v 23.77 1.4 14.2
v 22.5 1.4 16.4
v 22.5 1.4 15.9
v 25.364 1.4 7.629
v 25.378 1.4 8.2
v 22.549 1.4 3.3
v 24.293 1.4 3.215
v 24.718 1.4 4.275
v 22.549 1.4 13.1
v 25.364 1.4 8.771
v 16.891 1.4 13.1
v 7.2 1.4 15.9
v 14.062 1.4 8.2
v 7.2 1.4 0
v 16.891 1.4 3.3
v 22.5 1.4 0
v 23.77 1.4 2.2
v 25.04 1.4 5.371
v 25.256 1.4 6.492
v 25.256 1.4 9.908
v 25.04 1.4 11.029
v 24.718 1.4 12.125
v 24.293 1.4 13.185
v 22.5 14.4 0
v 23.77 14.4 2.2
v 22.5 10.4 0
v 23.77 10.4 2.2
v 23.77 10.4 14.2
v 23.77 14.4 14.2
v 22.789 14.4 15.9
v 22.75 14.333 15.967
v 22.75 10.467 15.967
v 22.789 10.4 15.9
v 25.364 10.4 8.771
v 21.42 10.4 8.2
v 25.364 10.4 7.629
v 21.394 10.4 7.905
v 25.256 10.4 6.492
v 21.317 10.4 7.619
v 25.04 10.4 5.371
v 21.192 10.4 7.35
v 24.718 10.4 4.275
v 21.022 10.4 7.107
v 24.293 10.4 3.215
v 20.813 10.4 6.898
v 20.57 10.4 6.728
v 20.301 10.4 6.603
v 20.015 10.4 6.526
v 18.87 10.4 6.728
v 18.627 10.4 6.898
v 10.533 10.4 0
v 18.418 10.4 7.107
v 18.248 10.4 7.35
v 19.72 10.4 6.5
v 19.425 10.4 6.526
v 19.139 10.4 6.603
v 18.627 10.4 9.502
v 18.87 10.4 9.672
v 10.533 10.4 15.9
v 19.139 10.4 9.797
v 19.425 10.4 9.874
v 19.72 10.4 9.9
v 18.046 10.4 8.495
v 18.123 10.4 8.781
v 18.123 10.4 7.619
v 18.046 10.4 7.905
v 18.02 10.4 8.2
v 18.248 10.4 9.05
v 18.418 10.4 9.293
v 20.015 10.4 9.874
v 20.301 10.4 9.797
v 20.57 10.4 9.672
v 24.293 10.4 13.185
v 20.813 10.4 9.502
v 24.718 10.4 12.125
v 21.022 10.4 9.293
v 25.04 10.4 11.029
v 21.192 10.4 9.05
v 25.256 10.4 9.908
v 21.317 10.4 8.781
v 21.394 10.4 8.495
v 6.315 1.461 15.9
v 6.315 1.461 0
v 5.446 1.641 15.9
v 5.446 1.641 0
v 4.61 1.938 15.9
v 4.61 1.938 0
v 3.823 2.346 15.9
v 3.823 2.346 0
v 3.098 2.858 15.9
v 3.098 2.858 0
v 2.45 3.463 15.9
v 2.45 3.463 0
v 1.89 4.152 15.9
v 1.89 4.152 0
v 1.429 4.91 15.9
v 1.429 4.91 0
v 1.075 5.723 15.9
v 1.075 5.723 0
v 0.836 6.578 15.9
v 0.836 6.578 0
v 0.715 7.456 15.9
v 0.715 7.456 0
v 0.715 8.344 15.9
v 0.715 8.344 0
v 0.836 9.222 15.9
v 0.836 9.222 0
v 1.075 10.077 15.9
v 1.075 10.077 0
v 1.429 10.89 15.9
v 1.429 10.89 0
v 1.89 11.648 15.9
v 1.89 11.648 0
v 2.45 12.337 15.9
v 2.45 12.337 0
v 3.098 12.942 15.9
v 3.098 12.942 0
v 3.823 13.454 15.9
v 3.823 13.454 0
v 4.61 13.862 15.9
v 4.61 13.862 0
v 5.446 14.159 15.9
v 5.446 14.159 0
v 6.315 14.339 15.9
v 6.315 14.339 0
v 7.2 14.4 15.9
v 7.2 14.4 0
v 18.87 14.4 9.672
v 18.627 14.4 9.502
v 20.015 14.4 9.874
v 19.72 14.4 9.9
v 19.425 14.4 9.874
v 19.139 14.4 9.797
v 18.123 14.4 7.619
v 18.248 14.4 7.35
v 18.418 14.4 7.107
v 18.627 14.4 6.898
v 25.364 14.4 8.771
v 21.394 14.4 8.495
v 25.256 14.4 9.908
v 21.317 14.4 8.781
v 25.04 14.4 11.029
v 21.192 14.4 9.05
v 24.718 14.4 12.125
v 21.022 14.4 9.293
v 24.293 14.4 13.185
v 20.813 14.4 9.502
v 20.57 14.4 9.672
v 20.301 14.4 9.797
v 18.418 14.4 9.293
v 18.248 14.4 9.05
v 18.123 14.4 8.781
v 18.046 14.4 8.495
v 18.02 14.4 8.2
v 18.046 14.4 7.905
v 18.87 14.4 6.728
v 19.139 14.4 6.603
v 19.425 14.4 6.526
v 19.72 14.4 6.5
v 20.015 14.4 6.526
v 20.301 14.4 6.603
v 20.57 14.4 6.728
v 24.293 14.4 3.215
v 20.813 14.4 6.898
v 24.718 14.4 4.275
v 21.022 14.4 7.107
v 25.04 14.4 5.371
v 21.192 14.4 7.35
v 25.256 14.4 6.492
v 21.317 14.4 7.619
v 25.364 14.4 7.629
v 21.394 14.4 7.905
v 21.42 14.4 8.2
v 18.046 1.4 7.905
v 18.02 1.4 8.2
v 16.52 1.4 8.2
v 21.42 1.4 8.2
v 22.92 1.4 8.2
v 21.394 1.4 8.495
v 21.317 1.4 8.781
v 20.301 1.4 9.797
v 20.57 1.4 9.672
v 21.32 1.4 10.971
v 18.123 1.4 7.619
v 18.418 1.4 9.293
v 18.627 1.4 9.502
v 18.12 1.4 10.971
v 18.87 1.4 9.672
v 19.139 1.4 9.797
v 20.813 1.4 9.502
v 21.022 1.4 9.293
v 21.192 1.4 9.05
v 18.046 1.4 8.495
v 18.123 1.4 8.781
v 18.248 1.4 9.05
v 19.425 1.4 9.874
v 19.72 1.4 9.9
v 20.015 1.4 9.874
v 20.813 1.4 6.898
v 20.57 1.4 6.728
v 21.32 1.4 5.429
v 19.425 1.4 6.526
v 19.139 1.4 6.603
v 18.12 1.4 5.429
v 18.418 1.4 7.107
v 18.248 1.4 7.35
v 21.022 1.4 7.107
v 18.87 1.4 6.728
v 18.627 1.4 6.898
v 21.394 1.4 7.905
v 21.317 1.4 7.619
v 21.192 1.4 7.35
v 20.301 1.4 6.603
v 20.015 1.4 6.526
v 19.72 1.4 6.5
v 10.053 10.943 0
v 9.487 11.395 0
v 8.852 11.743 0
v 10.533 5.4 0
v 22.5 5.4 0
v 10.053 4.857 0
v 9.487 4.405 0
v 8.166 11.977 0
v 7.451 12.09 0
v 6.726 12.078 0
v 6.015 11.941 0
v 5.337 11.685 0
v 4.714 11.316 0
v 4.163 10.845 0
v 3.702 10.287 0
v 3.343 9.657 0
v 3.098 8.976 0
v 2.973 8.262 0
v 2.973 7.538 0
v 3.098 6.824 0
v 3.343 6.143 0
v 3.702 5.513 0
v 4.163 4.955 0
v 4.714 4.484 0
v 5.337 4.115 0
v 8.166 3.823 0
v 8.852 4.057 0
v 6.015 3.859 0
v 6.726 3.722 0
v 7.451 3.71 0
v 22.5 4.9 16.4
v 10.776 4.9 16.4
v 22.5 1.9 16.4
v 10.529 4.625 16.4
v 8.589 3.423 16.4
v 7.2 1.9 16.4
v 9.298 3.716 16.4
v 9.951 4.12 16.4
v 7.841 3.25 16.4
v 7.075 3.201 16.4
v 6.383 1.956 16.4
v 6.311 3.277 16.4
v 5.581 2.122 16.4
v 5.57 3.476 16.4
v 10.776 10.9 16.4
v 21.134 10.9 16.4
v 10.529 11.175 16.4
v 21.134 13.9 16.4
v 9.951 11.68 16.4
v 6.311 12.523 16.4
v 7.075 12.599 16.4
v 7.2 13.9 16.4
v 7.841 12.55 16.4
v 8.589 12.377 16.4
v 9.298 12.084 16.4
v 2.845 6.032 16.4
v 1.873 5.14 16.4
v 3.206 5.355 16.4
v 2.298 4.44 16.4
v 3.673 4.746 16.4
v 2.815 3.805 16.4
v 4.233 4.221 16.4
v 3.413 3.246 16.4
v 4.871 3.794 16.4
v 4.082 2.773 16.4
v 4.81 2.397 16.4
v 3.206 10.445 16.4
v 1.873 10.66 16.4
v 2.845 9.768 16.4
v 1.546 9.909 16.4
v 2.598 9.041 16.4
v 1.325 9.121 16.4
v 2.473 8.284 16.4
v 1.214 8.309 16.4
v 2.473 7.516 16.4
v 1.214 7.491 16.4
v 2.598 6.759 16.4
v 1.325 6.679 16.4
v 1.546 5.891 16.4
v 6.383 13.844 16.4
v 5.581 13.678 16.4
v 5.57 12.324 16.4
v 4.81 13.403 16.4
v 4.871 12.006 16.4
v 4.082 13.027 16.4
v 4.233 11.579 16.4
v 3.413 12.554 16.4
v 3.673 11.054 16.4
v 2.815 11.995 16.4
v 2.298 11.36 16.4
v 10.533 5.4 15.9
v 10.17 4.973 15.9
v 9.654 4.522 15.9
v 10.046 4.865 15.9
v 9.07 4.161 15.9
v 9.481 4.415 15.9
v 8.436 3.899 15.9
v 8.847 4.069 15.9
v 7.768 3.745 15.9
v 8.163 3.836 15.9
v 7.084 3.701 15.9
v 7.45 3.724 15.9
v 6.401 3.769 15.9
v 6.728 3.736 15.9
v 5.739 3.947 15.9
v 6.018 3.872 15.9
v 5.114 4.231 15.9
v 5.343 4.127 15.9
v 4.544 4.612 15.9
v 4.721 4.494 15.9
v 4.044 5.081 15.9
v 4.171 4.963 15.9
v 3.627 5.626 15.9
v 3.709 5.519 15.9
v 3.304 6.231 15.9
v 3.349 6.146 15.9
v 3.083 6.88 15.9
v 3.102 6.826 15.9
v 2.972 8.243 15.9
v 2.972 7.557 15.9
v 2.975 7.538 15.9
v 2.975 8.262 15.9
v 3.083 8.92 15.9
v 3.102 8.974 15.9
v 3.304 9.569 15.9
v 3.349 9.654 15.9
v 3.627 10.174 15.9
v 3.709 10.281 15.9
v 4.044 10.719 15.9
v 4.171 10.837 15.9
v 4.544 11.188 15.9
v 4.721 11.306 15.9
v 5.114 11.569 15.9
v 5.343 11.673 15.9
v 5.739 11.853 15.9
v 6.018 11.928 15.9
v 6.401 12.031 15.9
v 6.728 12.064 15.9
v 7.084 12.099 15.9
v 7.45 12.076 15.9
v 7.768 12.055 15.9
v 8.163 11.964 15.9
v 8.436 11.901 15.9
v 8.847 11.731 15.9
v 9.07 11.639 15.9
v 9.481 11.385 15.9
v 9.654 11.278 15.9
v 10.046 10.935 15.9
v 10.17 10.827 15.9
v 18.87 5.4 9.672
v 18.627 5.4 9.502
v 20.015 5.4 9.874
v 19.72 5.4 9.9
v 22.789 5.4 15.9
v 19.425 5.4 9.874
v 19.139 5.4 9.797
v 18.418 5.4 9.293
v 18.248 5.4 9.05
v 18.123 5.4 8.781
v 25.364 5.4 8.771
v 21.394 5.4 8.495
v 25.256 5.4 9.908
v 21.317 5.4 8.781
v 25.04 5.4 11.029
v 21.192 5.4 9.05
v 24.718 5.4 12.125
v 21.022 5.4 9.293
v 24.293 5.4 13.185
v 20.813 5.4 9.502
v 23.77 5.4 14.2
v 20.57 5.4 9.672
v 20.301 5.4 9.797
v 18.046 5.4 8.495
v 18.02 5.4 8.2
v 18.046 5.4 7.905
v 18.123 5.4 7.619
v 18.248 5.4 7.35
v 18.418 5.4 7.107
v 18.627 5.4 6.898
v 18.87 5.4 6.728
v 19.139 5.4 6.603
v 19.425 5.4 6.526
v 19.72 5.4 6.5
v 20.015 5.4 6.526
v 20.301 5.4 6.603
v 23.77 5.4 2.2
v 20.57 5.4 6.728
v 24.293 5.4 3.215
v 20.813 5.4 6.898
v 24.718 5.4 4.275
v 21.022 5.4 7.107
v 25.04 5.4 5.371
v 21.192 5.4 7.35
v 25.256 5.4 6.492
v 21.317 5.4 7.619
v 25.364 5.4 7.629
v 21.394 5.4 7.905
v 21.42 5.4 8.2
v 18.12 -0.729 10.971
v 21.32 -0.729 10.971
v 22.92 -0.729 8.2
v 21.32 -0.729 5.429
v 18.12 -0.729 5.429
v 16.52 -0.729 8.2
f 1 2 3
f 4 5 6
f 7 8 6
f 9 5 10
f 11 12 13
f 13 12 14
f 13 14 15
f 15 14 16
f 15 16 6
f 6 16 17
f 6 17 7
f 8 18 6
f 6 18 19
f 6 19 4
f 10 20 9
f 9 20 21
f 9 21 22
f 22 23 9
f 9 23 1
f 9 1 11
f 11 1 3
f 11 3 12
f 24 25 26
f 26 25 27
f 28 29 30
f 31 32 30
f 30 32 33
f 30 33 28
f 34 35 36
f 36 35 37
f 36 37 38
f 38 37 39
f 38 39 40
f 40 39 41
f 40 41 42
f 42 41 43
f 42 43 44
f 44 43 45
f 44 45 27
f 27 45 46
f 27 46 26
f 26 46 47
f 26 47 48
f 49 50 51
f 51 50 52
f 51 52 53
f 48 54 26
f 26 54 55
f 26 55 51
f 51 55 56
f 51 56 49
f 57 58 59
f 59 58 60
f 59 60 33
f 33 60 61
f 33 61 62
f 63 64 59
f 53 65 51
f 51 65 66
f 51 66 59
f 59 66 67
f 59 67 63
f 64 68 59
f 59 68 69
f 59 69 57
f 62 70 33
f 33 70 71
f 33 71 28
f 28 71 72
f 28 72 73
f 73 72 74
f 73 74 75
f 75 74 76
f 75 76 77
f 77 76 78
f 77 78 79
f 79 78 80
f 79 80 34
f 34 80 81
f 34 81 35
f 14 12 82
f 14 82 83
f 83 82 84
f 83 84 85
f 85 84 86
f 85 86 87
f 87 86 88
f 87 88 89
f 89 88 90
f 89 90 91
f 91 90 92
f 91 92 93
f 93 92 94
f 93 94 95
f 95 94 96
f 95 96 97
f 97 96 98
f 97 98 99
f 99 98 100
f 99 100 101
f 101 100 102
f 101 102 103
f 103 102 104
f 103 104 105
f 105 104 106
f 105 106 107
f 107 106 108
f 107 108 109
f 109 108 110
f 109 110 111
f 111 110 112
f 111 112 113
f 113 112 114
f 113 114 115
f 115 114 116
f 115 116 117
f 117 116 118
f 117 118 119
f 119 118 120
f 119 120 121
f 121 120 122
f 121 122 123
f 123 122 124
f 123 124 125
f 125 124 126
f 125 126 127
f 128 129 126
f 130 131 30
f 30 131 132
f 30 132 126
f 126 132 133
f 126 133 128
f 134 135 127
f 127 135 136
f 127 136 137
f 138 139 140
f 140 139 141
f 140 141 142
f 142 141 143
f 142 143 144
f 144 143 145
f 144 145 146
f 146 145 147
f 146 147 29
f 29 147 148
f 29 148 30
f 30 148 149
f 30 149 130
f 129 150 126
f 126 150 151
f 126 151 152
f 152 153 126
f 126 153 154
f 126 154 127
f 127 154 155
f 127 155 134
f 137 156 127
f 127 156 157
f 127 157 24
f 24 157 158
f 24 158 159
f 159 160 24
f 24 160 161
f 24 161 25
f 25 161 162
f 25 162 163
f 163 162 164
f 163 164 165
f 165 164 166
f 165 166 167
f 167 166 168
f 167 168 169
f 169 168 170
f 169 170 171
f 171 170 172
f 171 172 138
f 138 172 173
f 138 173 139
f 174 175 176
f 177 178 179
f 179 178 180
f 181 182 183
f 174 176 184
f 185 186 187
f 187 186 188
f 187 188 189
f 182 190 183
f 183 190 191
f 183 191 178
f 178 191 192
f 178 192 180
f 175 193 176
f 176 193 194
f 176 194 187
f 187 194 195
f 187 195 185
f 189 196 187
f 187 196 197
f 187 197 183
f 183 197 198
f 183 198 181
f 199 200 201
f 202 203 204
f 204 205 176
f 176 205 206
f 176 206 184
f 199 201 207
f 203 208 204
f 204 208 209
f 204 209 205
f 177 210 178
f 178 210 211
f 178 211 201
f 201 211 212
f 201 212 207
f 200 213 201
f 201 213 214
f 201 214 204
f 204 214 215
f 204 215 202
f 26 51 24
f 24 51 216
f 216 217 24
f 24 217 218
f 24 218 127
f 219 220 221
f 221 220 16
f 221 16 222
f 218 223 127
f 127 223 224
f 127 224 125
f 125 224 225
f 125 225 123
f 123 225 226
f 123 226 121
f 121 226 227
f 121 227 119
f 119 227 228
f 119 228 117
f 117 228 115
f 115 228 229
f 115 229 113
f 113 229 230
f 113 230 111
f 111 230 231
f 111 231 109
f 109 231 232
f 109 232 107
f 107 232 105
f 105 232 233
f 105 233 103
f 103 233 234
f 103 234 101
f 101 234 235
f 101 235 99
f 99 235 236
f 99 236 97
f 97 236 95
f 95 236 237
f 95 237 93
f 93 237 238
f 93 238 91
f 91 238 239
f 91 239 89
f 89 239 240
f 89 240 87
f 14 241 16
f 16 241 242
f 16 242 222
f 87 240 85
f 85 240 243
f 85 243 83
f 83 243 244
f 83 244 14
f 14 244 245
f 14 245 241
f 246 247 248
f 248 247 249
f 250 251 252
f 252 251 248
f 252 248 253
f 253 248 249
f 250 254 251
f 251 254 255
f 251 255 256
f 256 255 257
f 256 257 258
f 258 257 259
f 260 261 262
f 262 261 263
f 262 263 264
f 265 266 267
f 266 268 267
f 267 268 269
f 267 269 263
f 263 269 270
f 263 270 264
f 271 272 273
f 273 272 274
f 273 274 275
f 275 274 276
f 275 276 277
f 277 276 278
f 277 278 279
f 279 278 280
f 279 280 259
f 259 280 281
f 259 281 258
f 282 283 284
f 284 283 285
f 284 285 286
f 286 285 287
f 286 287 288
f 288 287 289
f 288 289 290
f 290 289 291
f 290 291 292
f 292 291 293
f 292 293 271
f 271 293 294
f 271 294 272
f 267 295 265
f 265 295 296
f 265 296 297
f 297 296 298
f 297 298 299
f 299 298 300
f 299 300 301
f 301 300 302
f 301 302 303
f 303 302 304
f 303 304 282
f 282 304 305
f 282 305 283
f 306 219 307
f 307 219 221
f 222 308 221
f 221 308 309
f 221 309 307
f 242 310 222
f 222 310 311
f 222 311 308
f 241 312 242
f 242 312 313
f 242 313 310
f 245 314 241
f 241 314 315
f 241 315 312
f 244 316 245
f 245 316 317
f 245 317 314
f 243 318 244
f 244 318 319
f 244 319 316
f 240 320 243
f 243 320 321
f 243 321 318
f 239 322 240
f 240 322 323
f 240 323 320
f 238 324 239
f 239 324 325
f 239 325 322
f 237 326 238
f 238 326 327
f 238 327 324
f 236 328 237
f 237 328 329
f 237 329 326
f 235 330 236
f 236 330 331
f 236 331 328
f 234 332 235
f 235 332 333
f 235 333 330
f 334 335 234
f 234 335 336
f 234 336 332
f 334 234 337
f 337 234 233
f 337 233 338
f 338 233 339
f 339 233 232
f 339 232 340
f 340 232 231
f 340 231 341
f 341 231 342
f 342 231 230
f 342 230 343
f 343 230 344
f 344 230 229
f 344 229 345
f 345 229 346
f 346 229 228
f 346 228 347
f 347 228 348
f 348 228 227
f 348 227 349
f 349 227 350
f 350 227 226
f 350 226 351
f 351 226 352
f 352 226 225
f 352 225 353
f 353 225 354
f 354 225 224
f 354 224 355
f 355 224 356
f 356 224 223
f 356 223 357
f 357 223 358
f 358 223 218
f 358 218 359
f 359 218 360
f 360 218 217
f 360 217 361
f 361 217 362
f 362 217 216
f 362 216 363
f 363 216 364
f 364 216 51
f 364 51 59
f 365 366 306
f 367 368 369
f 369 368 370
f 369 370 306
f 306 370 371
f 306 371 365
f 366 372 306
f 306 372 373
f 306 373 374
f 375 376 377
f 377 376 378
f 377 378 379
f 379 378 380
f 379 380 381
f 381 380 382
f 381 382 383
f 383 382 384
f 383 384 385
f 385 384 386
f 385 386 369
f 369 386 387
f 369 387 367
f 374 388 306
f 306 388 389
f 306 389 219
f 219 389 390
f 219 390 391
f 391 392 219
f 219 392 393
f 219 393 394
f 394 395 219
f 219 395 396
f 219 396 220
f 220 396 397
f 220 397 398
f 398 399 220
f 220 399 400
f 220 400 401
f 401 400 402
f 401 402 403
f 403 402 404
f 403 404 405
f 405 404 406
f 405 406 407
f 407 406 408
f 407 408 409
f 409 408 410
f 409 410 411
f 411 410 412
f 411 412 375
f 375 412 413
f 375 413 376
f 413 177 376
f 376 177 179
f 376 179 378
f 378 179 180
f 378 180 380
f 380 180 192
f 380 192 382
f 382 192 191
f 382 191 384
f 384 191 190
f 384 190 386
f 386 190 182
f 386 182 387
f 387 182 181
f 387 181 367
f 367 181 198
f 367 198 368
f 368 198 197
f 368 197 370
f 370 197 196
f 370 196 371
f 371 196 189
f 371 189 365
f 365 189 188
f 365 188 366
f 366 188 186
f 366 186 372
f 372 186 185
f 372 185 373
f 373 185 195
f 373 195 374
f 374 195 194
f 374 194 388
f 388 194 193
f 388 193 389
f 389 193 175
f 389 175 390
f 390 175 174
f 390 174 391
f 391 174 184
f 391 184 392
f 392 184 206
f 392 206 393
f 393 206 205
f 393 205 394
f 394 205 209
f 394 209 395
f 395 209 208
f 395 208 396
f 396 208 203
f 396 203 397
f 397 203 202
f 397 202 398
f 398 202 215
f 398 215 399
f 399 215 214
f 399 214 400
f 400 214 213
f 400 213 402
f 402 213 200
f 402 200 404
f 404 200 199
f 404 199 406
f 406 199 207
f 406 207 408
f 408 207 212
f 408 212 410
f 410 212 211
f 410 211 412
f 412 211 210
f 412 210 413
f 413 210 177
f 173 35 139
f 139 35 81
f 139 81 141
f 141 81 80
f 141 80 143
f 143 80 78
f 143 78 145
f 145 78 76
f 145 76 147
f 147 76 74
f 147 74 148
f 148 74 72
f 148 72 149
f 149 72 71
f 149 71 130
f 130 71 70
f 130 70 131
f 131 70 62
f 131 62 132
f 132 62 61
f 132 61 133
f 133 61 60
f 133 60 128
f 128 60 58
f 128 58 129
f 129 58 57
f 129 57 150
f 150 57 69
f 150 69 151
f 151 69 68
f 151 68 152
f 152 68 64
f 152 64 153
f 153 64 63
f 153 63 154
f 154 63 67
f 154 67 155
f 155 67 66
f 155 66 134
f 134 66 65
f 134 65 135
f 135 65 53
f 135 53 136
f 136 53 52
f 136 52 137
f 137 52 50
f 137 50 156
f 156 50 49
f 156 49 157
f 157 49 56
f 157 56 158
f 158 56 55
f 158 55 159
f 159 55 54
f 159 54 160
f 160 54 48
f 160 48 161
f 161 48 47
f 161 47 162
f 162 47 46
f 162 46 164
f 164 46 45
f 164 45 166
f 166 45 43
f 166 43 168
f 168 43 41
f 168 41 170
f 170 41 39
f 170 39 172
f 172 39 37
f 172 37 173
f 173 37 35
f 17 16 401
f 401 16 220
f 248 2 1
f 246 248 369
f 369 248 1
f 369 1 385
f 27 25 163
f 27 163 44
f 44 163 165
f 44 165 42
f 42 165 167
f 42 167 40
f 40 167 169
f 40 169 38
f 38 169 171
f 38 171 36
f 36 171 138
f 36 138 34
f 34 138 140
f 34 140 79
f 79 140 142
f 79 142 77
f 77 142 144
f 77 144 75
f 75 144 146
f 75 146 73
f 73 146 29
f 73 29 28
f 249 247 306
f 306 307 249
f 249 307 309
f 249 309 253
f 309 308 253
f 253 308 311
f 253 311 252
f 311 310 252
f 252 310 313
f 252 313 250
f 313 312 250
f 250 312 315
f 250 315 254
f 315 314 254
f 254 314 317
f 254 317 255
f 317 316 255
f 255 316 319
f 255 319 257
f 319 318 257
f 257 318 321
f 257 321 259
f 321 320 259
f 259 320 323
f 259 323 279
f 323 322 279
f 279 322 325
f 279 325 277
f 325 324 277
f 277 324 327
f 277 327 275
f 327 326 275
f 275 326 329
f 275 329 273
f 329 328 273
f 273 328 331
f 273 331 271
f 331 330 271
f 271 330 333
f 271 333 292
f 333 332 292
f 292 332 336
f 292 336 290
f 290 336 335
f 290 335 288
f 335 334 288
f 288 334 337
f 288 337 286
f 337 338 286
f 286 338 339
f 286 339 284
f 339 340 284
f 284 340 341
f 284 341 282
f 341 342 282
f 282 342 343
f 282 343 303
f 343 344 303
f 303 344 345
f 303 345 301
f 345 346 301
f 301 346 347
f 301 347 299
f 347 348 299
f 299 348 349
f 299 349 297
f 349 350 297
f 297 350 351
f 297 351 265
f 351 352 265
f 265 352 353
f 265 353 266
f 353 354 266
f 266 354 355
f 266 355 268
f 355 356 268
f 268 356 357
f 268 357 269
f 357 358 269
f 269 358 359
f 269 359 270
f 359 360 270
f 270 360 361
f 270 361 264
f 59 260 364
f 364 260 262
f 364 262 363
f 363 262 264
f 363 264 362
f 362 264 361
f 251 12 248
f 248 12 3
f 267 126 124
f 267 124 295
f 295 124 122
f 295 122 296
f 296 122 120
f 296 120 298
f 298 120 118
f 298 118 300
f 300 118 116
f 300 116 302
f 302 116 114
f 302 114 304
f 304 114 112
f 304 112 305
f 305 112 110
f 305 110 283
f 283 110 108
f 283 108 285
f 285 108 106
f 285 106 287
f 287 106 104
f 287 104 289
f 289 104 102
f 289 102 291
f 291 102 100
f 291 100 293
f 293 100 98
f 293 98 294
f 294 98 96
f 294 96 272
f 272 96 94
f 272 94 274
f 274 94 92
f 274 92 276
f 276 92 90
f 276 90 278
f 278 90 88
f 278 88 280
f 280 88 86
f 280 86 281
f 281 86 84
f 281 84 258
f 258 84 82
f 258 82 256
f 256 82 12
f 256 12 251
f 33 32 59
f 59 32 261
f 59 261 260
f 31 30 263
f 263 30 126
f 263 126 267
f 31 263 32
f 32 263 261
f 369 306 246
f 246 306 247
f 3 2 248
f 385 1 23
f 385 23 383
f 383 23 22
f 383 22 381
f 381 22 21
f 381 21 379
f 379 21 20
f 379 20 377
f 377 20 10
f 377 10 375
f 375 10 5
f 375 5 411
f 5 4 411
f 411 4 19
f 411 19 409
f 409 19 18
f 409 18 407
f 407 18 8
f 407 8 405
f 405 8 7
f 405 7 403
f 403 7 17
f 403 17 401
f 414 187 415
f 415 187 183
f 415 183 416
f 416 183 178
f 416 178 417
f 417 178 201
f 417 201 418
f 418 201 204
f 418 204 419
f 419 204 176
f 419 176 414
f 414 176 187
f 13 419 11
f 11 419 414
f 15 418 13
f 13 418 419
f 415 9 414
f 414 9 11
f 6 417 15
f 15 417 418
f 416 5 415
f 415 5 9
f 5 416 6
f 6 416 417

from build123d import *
from OCP.BRepFilletAPI import BRepFilletAPI_MakeChamfer

# Parameters (mm, degrees)
BOSS_EXTRUDE1_DEPTH     = 16.399996177
CUT_EXTRUDE1_DEPTH      = 32.345970628
CUT_EXTRUDE3_DEPTH      = 30.26106414
CUT_EXTRUDE3_DEPTH_BACK = 30.26106414
SKETCH4_R               = 1.7
BOSS_EXTRUDE2_START     = -4
BOSS_EXTRUDE2_DEPTH     = 4
FILLET1_R               = 12
CHAMFER1_SIZE           = 0.5
CHAMFER2_SIZE           = 0.5
CHAMFER2_SIZE2          = 1.366025404
MIRROR2_START           = 1.4
MIRROR2_DEPTH           = 9
CUT_EXTRUDE4_DEPTH      = 31.847364144
BOSS_EXTRUDE4_DEPTH     = 2.3
CHAMFER3_SIZE           = 2.3


# Read off the part's stored shape, not the designer's step: Mirror2
with BuildPart() as part:
    # Sketch1 → Boss-Extrude1 (new body)
    with BuildSketch(Plane.XY.offset(16.399996177)):
        with BuildLine():
            Line((7.2, 1.4), (22.5, 1.4))
            Line((22.5, 1.4), (22.5, 14.4))
            Line((22.5, 14.4), (7.2, 14.4))
            ThreePointArc((7.2, 14.4), (0.7, 7.9), (7.2, 1.4))
        make_face()
    extrude(amount=-BOSS_EXTRUDE1_DEPTH)

    # Sketch2 → Cut-Extrude1 (cut, through all)
    with BuildSketch(Plane(origin=(0, 0, 0), x_dir=(-1, 0, 0), z_dir=(0, 0, -1))):
        with BuildLine():
            Line((-22.5, 10.4), (-22.5, 5.4))
            Line((-22.5, 5.4), (-10.532688106, 5.4))
            ThreePointArc((-10.532688106, 5.4), (-2.9577807, 7.9), (-10.532688106, 10.4))
            Line((-10.532688106, 10.4), (-22.5, 10.4))
        make_face()
    extrude(amount=-CUT_EXTRUDE1_DEPTH, mode=Mode.SUBTRACT)

    # Sketch4 → Cut-Extrude3 (cut, two sides: drawn at the far end of the back side and taken through both)
    with BuildSketch(Plane.XZ.offset(-10.4).offset(-CUT_EXTRUDE3_DEPTH_BACK)):
        with Locations((19.72, 8.2)):
            Circle(SKETCH4_R)
    extrude(amount=CUT_EXTRUDE3_DEPTH + CUT_EXTRUDE3_DEPTH_BACK, mode=Mode.SUBTRACT)

    # Sketch5 → Boss-Extrude2 (add)
    with BuildSketch(Plane(origin=(0, 14.4, 0), x_dir=(1, 0, 0), z_dir=(0, 1, 0)).offset(BOSS_EXTRUDE2_START)):
        Polygon((22.5, 0), (22.5, -16.399996177), (27.234271104, -8.199998088), align=None)
    extrude(amount=BOSS_EXTRUDE2_DEPTH)

    # Fillet1
    fillet1_edges = [part.edges().sort_by_distance(p)[0] for p in [
        (27.234271104, 12.4, 8.199998088),
    ]]
    fillet(fillet1_edges, radius=FILLET1_R)

    # Chamfer1
    chamfer1_edges = [part.edges().sort_by_distance(p)[0] for p in [
        (2.9577807, 7.9, 16.399996177),
    ]]
    chamfer(chamfer1_edges, length=CHAMFER1_SIZE)

    # Chamfer2: one chamfer whose edges measure the first distance from different faces: ONE call of the kernel's chamfer builder (chamfer() names one face for all edges)
    chamfer2_edges_1 = [part.edges().sort_by_distance(p)[0] for p in [
        (22.5, 12.4, 16.399996177),
    ]]
    chamfer2_side_1 = [part.faces().sort_by_distance(p)[0] for p in [
        (23.135084744, 12.4, 15.299997133),
    ]]
    chamfer2_edges_2 = [part.edges().sort_by_distance(p)[0] for p in [
        (14.85, 1.4, 16.399996177),
        (0.7, 7.9, 16.399996177),
        (14.85, 14.4, 16.399996177),
        (16.818865224, 10.4, 16.399996177),
        (16.818865224, 5.4, 16.399996177),
    ]]
    chamfer2 = BRepFilletAPI_MakeChamfer(part.part.solid().wrapped)
    for e in chamfer2_edges_1:
        chamfer2.Add(CHAMFER2_SIZE, CHAMFER2_SIZE2, e.wrapped, chamfer2_side_1[0].wrapped)  # the first distance lies on this face
    for e in chamfer2_edges_2:
        chamfer2.Add(CHAMFER2_SIZE, e.wrapped)
    add(Compound.cast(chamfer2.Shape()), mode=Mode.REPLACE)

    # Mirror2 outline → Mirror2 (add)
    with BuildSketch(Plane(origin=(0, 0, 0), x_dir=(1, 0, 0), z_dir=(0, 1, 0)).offset(MIRROR2_START)):
        with BuildLine():
            ThreePointArc((23.770169489, -14.199998088), (25.377864643, -8.199998088), (23.770169489, -2.199998088))
            Line((23.770169489, -2.199998088), (22.5, 0))
            Line((22.5, 0), (22.5, -16.399996177))
            Line((22.5, -16.399996177), (23.770169489, -14.199998088))
        make_face()
    extrude(amount=MIRROR2_DEPTH)

    # Sketch7 → Cut-Extrude4 (cut, through all)
    with BuildSketch(Plane.ZY.offset(-22.5)):
        Polygon((0, 10.4), (0, 5.4), (15.899996177, 5.4), (16.399996177, 4.9), (16.399996177, 10.4), (15.899996177, 10.4), align=None)
    extrude(amount=-CUT_EXTRUDE4_DEPTH, mode=Mode.SUBTRACT)

    # Sketch9 → Boss-Extrude4 (add)
    with BuildSketch(Plane.XZ.offset(-1.4)):
        Polygon((16.891066023, 3.300146444), (22.548930666, 3.300144532), (25.377864643, 8.199998088), (22.548933977, 13.099853556), (16.891069334, 13.099855468), (14.062135357, 8.200001912), align=None)
        Polygon((21.32, 10.971281292), (18.12, 10.971281292), (16.52, 8.2), (18.12, 5.428718708), (21.32, 5.428718708), (22.92, 8.2), align=None, mode=Mode.SUBTRACT)
    extrude(amount=BOSS_EXTRUDE4_DEPTH)

    # Chamfer3
    # the kernel refuses this chamfer: 2.3 mm, written as the material it takes off along each edge
    with BuildSketch(Plane(origin=(19.591493499, -0.9, -1.822282904), x_dir=(0.023812122999065932, 0.9996219169112968, -0.013747946350707228), z_dir=(0.5000002926043912, 0, 0.8660252348491488))) as chamfer3_piece_1_section:
        Polygon((CHAMFER3_SIZE * 0.999621916911, CHAMFER3_SIZE * 0.0274958766106), (-CHAMFER3_SIZE * 0.0274958766106, CHAMFER3_SIZE * 0.999621916911), (0, 0), align=None)
    chamfer3_piece_1 = extrude(amount=17.487606388, mode=Mode.PRIVATE)
    chamfer3_piece_1 = split(chamfer3_piece_1, bisect_by=Plane(origin=(23.305279483, 1.4, 6.13003631), z_dir=(0, -1, 0)), keep=Keep.TOP, mode=Mode.PRIVATE)
    add(chamfer3_piece_1, mode=Mode.SUBTRACT)
    with BuildSketch(Plane(origin=(10.976195151, -0.9, 3.300148442), x_dir=(-9.290045060267903e-09, 0.9996219169112968, -0.027495876610584728), z_dir=(0.999999999999943, 0, -3.378704806423189e-07))) as chamfer3_piece_2_section:
        Polygon((CHAMFER3_SIZE * 0.999621916911, CHAMFER3_SIZE * 0.0274958766106), (-CHAMFER3_SIZE * 0.0274958766106, CHAMFER3_SIZE * 0.999621916911), (0, 0), align=None)
    chamfer3_piece_2 = extrude(amount=17.487606388, mode=Mode.PRIVATE)
    chamfer3_piece_2 = split(chamfer3_piece_2, bisect_by=Plane(origin=(19.719998601, 1.4, 4.060075043), z_dir=(0, -1, 0)), keep=Keep.TOP, mode=Mode.PRIVATE)
    add(chamfer3_piece_2, mode=Mode.SUBTRACT)
    with BuildSketch(Plane(origin=(11.104701651, -0.9, 13.322431346), x_dir=(-0.023812132289111273, 0.9996219169112968, -0.013747930259877354), z_dir=(0.49999970739555216, 0, -0.8660255727196295))) as chamfer3_piece_3_section:
        Polygon((CHAMFER3_SIZE * 0.999621916911, CHAMFER3_SIZE * 0.0274958766106), (-CHAMFER3_SIZE * 0.0274958766106, CHAMFER3_SIZE * 0.999621916911), (0, 0), align=None)
    chamfer3_piece_3 = extrude(amount=17.487606388, mode=Mode.PRIVATE)
    chamfer3_piece_3 = split(chamfer3_piece_3, bisect_by=Plane(origin=(16.134719118, 1.4, 6.130038733), z_dir=(0, -1, 0)), keep=Keep.TOP, mode=Mode.PRIVATE)
    add(chamfer3_piece_3, mode=Mode.SUBTRACT)
    with BuildSketch(Plane(origin=(19.848506501, -0.9, 18.222282904), x_dir=(-0.023812122999067282, 0.9996219169112966, 0.013747946350707963), z_dir=(-0.5000002926043904, 0, -0.8660252348491492))) as chamfer3_piece_4_section:
        Polygon((CHAMFER3_SIZE * 0.999621916911, CHAMFER3_SIZE * 0.0274958766106), (-CHAMFER3_SIZE * 0.0274958766106, CHAMFER3_SIZE * 0.999621916911), (0, 0), align=None)
    chamfer3_piece_4 = extrude(amount=17.487606388, mode=Mode.PRIVATE)
    chamfer3_piece_4 = split(chamfer3_piece_4, bisect_by=Plane(origin=(16.134720517, 1.4, 10.26996369), z_dir=(0, -1, 0)), keep=Keep.TOP, mode=Mode.PRIVATE)
    add(chamfer3_piece_4, mode=Mode.SUBTRACT)
    with BuildSketch(Plane(origin=(28.335298349, -0.9, 3.077568654), x_dir=(0.02381213228911159, 0.9996219169112966, 0.013747930259877545), z_dir=(-0.499999707395552, 0, 0.8660255727196297))) as chamfer3_piece_5_section:
        Polygon((CHAMFER3_SIZE * 0.999621916911, CHAMFER3_SIZE * 0.0274958766106), (-CHAMFER3_SIZE * 0.0274958766106, CHAMFER3_SIZE * 0.999621916911), (0, 0), align=None)
    chamfer3_piece_5 = extrude(amount=17.487606388, mode=Mode.PRIVATE)
    chamfer3_piece_5 = split(chamfer3_piece_5, bisect_by=Plane(origin=(23.305280882, 1.4, 10.269961267), z_dir=(0, -1, 0)), keep=Keep.TOP, mode=Mode.PRIVATE)
    add(chamfer3_piece_5, mode=Mode.SUBTRACT)
    with BuildSketch(Plane(origin=(28.463804849, -0.9, 13.099851558), x_dir=(9.290045031933457e-09, 0.9996219169112968, 0.027495876610584735), z_dir=(-0.9999999999999429, 0, 3.3787048064231847e-07))) as chamfer3_piece_6_section:
        Polygon((CHAMFER3_SIZE * 0.999621916911, CHAMFER3_SIZE * 0.0274958766106), (-CHAMFER3_SIZE * 0.0274958766106, CHAMFER3_SIZE * 0.999621916911), (0, 0), align=None)
    chamfer3_piece_6 = extrude(amount=17.487606388, mode=Mode.PRIVATE)
    chamfer3_piece_6 = split(chamfer3_piece_6, bisect_by=Plane(origin=(19.720001399, 1.4, 12.339924957), z_dir=(0, -1, 0)), keep=Keep.TOP, mode=Mode.PRIVATE)
    add(chamfer3_piece_6, mode=Mode.SUBTRACT)


solid = part.part
